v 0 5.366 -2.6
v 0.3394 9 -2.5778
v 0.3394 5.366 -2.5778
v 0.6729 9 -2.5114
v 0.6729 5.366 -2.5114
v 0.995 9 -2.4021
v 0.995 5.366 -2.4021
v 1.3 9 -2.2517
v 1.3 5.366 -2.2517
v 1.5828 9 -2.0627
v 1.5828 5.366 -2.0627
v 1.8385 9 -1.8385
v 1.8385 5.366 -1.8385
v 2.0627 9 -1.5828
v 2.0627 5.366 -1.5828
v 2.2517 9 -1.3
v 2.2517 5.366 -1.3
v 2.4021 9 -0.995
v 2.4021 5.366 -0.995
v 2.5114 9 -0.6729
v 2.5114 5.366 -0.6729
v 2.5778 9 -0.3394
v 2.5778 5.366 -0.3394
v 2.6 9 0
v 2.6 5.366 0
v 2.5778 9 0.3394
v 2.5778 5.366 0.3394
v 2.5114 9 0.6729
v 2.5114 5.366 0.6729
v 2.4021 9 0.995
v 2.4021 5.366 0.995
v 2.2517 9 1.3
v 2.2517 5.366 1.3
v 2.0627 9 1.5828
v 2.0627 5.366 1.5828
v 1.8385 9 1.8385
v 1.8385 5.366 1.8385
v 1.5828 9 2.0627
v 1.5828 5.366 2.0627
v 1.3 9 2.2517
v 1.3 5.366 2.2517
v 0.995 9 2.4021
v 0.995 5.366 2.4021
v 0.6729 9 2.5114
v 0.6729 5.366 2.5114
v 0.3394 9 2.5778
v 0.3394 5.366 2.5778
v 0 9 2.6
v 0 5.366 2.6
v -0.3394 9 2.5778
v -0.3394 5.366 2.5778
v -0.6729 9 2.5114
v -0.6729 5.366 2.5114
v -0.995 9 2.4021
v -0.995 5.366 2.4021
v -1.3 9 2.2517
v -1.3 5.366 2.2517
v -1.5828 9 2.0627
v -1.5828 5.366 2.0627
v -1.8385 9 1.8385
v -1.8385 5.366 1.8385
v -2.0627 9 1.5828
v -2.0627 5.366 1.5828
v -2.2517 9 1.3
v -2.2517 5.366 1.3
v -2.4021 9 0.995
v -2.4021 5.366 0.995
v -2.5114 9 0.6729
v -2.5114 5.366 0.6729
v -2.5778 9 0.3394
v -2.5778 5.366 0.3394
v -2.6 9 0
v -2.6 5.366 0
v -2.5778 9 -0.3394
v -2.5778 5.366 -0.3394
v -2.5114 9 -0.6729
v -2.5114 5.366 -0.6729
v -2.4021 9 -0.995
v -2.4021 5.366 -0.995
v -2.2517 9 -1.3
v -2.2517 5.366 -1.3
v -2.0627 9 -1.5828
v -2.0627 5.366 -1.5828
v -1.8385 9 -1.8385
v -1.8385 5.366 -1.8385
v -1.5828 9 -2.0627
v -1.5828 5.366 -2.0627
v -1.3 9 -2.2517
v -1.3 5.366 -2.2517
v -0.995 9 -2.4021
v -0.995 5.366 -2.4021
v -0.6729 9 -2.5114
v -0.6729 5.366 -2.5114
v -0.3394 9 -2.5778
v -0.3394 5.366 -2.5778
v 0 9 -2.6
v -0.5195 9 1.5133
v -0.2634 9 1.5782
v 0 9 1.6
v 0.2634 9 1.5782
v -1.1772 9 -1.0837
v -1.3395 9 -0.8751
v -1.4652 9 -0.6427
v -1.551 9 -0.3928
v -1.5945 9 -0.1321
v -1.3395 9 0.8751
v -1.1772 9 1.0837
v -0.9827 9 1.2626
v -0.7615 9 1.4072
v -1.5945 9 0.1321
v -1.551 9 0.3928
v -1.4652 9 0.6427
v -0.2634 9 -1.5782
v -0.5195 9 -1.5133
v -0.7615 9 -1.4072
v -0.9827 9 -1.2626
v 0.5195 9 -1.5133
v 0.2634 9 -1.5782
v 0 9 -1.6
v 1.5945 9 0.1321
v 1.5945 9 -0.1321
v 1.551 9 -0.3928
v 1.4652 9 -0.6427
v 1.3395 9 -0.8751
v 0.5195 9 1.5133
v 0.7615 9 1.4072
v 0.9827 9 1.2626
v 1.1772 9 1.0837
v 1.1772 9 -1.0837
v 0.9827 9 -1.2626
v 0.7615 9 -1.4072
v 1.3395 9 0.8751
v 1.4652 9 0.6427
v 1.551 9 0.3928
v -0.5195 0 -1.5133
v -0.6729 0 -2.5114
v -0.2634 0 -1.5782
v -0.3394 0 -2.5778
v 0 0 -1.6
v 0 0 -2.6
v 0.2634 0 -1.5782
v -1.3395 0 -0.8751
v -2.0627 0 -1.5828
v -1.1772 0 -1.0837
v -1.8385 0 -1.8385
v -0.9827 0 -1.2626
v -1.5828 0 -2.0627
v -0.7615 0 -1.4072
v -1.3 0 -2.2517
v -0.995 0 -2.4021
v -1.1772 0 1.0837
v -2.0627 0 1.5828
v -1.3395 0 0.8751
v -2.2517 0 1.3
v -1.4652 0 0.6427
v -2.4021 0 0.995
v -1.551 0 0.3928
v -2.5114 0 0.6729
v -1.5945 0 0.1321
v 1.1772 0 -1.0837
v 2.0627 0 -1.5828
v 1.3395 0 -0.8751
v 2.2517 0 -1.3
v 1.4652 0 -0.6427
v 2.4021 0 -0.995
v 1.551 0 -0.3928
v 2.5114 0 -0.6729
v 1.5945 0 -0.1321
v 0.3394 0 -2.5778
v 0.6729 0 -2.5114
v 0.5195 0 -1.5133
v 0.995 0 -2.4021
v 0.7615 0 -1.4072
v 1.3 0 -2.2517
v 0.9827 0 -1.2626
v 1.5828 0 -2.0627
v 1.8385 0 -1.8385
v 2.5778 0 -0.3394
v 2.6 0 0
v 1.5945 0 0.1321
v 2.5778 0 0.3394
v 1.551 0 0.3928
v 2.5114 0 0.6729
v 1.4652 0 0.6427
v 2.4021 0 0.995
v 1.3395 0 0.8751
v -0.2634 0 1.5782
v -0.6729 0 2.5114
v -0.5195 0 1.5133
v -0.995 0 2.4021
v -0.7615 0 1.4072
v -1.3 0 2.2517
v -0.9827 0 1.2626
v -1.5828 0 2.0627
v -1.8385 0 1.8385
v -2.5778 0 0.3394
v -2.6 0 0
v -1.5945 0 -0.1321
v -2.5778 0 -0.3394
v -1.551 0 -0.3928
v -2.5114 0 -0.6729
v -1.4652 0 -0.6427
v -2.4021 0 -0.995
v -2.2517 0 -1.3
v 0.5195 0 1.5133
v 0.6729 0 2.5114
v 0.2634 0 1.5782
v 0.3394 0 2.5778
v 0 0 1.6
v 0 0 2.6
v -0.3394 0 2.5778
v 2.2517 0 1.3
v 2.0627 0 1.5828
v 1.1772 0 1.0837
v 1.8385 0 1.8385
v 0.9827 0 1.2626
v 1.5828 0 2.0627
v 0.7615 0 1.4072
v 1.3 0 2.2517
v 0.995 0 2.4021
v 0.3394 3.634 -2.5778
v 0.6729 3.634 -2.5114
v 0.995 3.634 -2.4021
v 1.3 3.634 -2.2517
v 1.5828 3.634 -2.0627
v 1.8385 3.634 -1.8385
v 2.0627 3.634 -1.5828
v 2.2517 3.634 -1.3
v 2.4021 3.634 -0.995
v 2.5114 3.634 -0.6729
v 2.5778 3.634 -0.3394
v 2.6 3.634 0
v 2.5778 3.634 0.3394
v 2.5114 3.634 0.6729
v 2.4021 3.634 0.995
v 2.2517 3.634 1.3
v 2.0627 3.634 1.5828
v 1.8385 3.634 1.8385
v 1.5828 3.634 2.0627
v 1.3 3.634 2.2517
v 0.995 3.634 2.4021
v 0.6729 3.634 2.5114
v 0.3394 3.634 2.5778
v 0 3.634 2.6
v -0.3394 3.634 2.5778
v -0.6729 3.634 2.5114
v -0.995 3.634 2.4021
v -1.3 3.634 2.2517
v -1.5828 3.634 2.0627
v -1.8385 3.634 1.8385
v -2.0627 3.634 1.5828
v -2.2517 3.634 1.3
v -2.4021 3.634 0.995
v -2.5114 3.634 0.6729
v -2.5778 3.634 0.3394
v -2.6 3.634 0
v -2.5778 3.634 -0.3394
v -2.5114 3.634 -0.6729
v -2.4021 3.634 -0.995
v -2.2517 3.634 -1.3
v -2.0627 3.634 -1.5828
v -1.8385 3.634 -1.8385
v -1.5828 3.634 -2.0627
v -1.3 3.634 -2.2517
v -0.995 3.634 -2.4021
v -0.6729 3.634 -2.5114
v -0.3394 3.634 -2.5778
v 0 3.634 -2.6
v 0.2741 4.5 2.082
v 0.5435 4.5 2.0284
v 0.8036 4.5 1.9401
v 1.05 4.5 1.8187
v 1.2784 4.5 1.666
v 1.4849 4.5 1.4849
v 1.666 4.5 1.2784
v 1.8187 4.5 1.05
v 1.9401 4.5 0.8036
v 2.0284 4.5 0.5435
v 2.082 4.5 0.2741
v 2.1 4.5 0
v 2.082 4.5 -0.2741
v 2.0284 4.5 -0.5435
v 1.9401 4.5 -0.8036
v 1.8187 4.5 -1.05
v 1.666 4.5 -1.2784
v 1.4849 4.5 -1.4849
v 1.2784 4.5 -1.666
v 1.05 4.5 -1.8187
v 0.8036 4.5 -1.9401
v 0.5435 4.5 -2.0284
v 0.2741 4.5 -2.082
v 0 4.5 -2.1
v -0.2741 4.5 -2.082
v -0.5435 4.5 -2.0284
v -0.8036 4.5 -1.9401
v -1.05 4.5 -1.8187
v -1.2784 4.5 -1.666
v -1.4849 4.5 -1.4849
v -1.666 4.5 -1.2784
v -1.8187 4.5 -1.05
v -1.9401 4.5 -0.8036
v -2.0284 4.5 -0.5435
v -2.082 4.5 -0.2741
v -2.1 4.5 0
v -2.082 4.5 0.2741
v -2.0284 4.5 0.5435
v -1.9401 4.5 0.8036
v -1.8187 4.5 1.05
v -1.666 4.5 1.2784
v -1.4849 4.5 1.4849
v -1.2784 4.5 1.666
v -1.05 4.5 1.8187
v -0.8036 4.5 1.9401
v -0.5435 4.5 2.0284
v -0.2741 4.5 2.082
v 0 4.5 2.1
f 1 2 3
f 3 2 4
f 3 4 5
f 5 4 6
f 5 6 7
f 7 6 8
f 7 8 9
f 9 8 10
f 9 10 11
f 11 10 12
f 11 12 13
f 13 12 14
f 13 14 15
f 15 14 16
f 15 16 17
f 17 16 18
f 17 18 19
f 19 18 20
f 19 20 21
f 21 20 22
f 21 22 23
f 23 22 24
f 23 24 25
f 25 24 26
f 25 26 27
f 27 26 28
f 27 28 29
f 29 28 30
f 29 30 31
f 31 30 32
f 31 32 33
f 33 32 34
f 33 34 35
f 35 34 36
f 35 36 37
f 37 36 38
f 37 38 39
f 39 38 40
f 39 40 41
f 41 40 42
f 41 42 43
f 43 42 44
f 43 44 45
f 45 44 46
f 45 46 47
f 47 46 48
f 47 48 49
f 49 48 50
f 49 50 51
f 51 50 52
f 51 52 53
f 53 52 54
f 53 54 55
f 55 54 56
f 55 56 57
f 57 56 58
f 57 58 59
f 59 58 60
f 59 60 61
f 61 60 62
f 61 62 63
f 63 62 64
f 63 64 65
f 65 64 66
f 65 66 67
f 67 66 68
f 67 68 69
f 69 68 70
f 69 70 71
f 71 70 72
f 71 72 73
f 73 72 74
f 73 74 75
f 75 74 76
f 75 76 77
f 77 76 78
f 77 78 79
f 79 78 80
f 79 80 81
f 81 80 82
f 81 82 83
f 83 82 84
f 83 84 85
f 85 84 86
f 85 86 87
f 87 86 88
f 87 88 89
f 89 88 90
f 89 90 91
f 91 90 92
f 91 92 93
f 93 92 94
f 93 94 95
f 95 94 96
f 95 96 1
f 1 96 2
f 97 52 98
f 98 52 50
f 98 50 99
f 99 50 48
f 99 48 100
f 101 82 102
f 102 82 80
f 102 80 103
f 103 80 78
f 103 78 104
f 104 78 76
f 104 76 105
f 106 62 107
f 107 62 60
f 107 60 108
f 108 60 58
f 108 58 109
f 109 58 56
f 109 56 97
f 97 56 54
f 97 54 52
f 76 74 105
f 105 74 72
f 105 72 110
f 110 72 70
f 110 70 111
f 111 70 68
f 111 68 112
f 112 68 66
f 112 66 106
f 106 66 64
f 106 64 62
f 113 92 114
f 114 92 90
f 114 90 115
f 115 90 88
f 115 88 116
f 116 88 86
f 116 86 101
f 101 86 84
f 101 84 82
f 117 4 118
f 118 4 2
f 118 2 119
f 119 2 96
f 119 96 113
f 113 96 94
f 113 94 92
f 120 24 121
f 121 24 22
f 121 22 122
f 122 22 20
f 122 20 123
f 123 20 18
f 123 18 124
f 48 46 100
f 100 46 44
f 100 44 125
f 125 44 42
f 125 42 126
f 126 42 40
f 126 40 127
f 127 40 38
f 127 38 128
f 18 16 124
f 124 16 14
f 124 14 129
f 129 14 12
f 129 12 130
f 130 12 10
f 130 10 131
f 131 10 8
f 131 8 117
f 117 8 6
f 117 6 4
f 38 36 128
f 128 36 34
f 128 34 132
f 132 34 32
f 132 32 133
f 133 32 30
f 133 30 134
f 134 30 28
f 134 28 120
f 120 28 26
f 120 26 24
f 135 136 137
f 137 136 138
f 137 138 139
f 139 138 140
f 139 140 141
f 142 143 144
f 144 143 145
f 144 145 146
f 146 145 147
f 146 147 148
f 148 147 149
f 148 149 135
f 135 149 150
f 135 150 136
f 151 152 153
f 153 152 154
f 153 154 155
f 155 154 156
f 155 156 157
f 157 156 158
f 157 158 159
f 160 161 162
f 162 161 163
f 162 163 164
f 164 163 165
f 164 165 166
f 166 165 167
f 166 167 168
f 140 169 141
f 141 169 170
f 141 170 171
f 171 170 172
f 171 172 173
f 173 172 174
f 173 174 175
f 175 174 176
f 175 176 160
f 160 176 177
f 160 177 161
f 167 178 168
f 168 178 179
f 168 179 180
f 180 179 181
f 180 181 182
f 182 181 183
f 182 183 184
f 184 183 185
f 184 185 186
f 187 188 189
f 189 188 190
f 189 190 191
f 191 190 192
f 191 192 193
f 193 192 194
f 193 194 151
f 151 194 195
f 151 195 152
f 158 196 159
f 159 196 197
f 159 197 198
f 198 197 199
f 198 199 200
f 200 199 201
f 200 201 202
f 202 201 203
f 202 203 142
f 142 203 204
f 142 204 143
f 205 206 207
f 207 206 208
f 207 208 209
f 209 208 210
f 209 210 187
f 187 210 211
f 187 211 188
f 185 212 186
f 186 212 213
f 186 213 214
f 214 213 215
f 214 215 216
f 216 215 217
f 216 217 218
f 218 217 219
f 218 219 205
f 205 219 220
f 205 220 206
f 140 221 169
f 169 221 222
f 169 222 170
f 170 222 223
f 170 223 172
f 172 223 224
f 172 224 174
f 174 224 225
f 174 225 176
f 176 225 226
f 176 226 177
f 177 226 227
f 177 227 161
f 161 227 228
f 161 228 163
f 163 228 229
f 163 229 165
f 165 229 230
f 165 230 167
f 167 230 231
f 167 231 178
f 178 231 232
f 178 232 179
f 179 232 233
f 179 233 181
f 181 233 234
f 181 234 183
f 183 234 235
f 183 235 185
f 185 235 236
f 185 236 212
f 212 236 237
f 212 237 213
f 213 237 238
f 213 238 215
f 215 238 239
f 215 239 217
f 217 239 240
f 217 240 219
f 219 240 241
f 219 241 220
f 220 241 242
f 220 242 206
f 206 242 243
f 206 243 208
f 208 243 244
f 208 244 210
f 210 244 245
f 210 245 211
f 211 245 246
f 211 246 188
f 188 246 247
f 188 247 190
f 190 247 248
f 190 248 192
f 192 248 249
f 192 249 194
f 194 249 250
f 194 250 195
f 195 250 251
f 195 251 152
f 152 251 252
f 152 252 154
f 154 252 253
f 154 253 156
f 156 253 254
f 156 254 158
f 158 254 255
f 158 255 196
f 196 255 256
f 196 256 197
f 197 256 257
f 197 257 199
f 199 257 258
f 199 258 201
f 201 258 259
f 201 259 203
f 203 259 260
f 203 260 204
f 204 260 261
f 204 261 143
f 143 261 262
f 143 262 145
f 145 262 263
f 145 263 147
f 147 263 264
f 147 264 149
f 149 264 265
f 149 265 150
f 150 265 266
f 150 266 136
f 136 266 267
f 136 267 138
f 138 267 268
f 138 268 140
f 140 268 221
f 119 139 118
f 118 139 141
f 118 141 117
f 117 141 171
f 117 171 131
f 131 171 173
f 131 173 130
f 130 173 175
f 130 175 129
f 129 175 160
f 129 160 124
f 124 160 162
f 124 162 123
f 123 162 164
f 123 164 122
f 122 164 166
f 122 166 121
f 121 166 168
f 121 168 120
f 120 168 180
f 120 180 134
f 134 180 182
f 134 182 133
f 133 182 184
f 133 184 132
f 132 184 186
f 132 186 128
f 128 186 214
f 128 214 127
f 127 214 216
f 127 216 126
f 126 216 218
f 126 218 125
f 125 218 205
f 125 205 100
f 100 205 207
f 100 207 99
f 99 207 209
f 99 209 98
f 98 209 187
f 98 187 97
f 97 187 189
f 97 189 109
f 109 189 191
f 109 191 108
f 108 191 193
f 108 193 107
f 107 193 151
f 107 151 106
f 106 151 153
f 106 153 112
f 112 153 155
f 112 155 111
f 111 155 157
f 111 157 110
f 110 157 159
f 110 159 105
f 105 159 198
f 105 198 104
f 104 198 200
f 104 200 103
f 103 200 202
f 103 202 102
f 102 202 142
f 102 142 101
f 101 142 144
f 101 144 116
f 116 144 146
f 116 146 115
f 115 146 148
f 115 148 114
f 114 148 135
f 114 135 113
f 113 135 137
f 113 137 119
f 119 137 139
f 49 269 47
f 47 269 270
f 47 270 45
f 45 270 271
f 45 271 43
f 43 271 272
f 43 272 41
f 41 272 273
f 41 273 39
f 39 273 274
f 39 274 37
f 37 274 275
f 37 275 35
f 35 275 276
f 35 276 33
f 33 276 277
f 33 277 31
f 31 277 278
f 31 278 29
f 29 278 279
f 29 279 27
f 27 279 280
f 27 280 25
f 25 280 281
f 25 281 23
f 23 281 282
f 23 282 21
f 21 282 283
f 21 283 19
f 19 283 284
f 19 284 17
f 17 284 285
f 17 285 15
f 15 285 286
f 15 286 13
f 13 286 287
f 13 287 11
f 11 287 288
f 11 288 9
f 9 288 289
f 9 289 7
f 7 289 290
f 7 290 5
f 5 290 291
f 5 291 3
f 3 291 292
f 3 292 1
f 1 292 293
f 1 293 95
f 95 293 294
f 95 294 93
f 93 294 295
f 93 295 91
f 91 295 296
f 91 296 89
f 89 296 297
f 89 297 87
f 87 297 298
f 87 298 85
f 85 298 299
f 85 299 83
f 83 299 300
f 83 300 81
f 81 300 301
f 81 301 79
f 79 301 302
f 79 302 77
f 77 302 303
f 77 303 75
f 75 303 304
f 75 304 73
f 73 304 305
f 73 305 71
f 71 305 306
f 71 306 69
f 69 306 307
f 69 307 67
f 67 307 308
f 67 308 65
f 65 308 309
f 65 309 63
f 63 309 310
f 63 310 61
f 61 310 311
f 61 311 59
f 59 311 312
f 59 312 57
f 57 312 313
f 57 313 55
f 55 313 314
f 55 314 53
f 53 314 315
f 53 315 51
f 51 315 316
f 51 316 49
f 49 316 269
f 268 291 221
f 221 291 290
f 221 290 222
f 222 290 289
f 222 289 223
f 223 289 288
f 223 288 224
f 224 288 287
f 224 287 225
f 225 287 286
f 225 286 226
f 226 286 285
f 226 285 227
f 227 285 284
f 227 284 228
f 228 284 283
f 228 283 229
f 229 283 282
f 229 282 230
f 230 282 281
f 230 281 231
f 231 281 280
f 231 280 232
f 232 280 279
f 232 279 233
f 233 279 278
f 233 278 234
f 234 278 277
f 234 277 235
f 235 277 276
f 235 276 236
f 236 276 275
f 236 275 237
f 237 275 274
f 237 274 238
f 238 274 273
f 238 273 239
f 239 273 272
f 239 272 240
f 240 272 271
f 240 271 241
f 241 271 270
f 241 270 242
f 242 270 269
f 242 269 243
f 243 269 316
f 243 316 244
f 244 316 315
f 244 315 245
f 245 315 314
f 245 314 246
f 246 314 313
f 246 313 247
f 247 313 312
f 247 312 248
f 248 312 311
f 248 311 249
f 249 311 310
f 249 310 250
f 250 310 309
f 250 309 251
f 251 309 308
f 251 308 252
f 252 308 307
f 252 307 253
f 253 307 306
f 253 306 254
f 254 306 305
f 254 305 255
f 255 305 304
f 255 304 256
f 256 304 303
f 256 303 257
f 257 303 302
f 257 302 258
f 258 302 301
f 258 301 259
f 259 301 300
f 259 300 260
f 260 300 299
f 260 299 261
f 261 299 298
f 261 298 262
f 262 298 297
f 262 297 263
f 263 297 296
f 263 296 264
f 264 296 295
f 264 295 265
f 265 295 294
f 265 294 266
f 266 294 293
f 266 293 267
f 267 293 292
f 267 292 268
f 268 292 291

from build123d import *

# Parameters (mm, degrees)
SKETCH_1_R      = 2.6
SKETCH_1_R_2    = 1.6
EXTRUDE_1_DEPTH = 9


with BuildPart() as part:
    # 草图1 → 凸台-拉伸1 (new body)
    with BuildSketch(Plane(origin=(0, 0, 0), x_dir=(1, 0, 0), z_dir=(0, 1, 0))):
        with Locations(Location((0, 0, 0), (0, 0, 270))):
            Circle(SKETCH_1_R)
        with Locations(Location((0, 0, 0), (0, 0, 270))):
            Circle(SKETCH_1_R_2, mode=Mode.SUBTRACT)
    extrude(amount=EXTRUDE_1_DEPTH)

    # 草图2 → 切除-旋转1 (revolve, cut)
    with BuildSketch(Plane.XY, mode=Mode.PRIVATE) as cut_revolve_1_sk:
        Polygon((-2.6, 5.366025404), (-2.1, 4.5), (-2.6, 3.633974596), align=None)
    revolve(cut_revolve_1_sk.sketch.rotate(Axis((0, 9, 0), (0, -1, 0)), 270), axis=Axis((0, 9, 0), (0, -1, 0)), mode=Mode.SUBTRACT)


solid = part.part
